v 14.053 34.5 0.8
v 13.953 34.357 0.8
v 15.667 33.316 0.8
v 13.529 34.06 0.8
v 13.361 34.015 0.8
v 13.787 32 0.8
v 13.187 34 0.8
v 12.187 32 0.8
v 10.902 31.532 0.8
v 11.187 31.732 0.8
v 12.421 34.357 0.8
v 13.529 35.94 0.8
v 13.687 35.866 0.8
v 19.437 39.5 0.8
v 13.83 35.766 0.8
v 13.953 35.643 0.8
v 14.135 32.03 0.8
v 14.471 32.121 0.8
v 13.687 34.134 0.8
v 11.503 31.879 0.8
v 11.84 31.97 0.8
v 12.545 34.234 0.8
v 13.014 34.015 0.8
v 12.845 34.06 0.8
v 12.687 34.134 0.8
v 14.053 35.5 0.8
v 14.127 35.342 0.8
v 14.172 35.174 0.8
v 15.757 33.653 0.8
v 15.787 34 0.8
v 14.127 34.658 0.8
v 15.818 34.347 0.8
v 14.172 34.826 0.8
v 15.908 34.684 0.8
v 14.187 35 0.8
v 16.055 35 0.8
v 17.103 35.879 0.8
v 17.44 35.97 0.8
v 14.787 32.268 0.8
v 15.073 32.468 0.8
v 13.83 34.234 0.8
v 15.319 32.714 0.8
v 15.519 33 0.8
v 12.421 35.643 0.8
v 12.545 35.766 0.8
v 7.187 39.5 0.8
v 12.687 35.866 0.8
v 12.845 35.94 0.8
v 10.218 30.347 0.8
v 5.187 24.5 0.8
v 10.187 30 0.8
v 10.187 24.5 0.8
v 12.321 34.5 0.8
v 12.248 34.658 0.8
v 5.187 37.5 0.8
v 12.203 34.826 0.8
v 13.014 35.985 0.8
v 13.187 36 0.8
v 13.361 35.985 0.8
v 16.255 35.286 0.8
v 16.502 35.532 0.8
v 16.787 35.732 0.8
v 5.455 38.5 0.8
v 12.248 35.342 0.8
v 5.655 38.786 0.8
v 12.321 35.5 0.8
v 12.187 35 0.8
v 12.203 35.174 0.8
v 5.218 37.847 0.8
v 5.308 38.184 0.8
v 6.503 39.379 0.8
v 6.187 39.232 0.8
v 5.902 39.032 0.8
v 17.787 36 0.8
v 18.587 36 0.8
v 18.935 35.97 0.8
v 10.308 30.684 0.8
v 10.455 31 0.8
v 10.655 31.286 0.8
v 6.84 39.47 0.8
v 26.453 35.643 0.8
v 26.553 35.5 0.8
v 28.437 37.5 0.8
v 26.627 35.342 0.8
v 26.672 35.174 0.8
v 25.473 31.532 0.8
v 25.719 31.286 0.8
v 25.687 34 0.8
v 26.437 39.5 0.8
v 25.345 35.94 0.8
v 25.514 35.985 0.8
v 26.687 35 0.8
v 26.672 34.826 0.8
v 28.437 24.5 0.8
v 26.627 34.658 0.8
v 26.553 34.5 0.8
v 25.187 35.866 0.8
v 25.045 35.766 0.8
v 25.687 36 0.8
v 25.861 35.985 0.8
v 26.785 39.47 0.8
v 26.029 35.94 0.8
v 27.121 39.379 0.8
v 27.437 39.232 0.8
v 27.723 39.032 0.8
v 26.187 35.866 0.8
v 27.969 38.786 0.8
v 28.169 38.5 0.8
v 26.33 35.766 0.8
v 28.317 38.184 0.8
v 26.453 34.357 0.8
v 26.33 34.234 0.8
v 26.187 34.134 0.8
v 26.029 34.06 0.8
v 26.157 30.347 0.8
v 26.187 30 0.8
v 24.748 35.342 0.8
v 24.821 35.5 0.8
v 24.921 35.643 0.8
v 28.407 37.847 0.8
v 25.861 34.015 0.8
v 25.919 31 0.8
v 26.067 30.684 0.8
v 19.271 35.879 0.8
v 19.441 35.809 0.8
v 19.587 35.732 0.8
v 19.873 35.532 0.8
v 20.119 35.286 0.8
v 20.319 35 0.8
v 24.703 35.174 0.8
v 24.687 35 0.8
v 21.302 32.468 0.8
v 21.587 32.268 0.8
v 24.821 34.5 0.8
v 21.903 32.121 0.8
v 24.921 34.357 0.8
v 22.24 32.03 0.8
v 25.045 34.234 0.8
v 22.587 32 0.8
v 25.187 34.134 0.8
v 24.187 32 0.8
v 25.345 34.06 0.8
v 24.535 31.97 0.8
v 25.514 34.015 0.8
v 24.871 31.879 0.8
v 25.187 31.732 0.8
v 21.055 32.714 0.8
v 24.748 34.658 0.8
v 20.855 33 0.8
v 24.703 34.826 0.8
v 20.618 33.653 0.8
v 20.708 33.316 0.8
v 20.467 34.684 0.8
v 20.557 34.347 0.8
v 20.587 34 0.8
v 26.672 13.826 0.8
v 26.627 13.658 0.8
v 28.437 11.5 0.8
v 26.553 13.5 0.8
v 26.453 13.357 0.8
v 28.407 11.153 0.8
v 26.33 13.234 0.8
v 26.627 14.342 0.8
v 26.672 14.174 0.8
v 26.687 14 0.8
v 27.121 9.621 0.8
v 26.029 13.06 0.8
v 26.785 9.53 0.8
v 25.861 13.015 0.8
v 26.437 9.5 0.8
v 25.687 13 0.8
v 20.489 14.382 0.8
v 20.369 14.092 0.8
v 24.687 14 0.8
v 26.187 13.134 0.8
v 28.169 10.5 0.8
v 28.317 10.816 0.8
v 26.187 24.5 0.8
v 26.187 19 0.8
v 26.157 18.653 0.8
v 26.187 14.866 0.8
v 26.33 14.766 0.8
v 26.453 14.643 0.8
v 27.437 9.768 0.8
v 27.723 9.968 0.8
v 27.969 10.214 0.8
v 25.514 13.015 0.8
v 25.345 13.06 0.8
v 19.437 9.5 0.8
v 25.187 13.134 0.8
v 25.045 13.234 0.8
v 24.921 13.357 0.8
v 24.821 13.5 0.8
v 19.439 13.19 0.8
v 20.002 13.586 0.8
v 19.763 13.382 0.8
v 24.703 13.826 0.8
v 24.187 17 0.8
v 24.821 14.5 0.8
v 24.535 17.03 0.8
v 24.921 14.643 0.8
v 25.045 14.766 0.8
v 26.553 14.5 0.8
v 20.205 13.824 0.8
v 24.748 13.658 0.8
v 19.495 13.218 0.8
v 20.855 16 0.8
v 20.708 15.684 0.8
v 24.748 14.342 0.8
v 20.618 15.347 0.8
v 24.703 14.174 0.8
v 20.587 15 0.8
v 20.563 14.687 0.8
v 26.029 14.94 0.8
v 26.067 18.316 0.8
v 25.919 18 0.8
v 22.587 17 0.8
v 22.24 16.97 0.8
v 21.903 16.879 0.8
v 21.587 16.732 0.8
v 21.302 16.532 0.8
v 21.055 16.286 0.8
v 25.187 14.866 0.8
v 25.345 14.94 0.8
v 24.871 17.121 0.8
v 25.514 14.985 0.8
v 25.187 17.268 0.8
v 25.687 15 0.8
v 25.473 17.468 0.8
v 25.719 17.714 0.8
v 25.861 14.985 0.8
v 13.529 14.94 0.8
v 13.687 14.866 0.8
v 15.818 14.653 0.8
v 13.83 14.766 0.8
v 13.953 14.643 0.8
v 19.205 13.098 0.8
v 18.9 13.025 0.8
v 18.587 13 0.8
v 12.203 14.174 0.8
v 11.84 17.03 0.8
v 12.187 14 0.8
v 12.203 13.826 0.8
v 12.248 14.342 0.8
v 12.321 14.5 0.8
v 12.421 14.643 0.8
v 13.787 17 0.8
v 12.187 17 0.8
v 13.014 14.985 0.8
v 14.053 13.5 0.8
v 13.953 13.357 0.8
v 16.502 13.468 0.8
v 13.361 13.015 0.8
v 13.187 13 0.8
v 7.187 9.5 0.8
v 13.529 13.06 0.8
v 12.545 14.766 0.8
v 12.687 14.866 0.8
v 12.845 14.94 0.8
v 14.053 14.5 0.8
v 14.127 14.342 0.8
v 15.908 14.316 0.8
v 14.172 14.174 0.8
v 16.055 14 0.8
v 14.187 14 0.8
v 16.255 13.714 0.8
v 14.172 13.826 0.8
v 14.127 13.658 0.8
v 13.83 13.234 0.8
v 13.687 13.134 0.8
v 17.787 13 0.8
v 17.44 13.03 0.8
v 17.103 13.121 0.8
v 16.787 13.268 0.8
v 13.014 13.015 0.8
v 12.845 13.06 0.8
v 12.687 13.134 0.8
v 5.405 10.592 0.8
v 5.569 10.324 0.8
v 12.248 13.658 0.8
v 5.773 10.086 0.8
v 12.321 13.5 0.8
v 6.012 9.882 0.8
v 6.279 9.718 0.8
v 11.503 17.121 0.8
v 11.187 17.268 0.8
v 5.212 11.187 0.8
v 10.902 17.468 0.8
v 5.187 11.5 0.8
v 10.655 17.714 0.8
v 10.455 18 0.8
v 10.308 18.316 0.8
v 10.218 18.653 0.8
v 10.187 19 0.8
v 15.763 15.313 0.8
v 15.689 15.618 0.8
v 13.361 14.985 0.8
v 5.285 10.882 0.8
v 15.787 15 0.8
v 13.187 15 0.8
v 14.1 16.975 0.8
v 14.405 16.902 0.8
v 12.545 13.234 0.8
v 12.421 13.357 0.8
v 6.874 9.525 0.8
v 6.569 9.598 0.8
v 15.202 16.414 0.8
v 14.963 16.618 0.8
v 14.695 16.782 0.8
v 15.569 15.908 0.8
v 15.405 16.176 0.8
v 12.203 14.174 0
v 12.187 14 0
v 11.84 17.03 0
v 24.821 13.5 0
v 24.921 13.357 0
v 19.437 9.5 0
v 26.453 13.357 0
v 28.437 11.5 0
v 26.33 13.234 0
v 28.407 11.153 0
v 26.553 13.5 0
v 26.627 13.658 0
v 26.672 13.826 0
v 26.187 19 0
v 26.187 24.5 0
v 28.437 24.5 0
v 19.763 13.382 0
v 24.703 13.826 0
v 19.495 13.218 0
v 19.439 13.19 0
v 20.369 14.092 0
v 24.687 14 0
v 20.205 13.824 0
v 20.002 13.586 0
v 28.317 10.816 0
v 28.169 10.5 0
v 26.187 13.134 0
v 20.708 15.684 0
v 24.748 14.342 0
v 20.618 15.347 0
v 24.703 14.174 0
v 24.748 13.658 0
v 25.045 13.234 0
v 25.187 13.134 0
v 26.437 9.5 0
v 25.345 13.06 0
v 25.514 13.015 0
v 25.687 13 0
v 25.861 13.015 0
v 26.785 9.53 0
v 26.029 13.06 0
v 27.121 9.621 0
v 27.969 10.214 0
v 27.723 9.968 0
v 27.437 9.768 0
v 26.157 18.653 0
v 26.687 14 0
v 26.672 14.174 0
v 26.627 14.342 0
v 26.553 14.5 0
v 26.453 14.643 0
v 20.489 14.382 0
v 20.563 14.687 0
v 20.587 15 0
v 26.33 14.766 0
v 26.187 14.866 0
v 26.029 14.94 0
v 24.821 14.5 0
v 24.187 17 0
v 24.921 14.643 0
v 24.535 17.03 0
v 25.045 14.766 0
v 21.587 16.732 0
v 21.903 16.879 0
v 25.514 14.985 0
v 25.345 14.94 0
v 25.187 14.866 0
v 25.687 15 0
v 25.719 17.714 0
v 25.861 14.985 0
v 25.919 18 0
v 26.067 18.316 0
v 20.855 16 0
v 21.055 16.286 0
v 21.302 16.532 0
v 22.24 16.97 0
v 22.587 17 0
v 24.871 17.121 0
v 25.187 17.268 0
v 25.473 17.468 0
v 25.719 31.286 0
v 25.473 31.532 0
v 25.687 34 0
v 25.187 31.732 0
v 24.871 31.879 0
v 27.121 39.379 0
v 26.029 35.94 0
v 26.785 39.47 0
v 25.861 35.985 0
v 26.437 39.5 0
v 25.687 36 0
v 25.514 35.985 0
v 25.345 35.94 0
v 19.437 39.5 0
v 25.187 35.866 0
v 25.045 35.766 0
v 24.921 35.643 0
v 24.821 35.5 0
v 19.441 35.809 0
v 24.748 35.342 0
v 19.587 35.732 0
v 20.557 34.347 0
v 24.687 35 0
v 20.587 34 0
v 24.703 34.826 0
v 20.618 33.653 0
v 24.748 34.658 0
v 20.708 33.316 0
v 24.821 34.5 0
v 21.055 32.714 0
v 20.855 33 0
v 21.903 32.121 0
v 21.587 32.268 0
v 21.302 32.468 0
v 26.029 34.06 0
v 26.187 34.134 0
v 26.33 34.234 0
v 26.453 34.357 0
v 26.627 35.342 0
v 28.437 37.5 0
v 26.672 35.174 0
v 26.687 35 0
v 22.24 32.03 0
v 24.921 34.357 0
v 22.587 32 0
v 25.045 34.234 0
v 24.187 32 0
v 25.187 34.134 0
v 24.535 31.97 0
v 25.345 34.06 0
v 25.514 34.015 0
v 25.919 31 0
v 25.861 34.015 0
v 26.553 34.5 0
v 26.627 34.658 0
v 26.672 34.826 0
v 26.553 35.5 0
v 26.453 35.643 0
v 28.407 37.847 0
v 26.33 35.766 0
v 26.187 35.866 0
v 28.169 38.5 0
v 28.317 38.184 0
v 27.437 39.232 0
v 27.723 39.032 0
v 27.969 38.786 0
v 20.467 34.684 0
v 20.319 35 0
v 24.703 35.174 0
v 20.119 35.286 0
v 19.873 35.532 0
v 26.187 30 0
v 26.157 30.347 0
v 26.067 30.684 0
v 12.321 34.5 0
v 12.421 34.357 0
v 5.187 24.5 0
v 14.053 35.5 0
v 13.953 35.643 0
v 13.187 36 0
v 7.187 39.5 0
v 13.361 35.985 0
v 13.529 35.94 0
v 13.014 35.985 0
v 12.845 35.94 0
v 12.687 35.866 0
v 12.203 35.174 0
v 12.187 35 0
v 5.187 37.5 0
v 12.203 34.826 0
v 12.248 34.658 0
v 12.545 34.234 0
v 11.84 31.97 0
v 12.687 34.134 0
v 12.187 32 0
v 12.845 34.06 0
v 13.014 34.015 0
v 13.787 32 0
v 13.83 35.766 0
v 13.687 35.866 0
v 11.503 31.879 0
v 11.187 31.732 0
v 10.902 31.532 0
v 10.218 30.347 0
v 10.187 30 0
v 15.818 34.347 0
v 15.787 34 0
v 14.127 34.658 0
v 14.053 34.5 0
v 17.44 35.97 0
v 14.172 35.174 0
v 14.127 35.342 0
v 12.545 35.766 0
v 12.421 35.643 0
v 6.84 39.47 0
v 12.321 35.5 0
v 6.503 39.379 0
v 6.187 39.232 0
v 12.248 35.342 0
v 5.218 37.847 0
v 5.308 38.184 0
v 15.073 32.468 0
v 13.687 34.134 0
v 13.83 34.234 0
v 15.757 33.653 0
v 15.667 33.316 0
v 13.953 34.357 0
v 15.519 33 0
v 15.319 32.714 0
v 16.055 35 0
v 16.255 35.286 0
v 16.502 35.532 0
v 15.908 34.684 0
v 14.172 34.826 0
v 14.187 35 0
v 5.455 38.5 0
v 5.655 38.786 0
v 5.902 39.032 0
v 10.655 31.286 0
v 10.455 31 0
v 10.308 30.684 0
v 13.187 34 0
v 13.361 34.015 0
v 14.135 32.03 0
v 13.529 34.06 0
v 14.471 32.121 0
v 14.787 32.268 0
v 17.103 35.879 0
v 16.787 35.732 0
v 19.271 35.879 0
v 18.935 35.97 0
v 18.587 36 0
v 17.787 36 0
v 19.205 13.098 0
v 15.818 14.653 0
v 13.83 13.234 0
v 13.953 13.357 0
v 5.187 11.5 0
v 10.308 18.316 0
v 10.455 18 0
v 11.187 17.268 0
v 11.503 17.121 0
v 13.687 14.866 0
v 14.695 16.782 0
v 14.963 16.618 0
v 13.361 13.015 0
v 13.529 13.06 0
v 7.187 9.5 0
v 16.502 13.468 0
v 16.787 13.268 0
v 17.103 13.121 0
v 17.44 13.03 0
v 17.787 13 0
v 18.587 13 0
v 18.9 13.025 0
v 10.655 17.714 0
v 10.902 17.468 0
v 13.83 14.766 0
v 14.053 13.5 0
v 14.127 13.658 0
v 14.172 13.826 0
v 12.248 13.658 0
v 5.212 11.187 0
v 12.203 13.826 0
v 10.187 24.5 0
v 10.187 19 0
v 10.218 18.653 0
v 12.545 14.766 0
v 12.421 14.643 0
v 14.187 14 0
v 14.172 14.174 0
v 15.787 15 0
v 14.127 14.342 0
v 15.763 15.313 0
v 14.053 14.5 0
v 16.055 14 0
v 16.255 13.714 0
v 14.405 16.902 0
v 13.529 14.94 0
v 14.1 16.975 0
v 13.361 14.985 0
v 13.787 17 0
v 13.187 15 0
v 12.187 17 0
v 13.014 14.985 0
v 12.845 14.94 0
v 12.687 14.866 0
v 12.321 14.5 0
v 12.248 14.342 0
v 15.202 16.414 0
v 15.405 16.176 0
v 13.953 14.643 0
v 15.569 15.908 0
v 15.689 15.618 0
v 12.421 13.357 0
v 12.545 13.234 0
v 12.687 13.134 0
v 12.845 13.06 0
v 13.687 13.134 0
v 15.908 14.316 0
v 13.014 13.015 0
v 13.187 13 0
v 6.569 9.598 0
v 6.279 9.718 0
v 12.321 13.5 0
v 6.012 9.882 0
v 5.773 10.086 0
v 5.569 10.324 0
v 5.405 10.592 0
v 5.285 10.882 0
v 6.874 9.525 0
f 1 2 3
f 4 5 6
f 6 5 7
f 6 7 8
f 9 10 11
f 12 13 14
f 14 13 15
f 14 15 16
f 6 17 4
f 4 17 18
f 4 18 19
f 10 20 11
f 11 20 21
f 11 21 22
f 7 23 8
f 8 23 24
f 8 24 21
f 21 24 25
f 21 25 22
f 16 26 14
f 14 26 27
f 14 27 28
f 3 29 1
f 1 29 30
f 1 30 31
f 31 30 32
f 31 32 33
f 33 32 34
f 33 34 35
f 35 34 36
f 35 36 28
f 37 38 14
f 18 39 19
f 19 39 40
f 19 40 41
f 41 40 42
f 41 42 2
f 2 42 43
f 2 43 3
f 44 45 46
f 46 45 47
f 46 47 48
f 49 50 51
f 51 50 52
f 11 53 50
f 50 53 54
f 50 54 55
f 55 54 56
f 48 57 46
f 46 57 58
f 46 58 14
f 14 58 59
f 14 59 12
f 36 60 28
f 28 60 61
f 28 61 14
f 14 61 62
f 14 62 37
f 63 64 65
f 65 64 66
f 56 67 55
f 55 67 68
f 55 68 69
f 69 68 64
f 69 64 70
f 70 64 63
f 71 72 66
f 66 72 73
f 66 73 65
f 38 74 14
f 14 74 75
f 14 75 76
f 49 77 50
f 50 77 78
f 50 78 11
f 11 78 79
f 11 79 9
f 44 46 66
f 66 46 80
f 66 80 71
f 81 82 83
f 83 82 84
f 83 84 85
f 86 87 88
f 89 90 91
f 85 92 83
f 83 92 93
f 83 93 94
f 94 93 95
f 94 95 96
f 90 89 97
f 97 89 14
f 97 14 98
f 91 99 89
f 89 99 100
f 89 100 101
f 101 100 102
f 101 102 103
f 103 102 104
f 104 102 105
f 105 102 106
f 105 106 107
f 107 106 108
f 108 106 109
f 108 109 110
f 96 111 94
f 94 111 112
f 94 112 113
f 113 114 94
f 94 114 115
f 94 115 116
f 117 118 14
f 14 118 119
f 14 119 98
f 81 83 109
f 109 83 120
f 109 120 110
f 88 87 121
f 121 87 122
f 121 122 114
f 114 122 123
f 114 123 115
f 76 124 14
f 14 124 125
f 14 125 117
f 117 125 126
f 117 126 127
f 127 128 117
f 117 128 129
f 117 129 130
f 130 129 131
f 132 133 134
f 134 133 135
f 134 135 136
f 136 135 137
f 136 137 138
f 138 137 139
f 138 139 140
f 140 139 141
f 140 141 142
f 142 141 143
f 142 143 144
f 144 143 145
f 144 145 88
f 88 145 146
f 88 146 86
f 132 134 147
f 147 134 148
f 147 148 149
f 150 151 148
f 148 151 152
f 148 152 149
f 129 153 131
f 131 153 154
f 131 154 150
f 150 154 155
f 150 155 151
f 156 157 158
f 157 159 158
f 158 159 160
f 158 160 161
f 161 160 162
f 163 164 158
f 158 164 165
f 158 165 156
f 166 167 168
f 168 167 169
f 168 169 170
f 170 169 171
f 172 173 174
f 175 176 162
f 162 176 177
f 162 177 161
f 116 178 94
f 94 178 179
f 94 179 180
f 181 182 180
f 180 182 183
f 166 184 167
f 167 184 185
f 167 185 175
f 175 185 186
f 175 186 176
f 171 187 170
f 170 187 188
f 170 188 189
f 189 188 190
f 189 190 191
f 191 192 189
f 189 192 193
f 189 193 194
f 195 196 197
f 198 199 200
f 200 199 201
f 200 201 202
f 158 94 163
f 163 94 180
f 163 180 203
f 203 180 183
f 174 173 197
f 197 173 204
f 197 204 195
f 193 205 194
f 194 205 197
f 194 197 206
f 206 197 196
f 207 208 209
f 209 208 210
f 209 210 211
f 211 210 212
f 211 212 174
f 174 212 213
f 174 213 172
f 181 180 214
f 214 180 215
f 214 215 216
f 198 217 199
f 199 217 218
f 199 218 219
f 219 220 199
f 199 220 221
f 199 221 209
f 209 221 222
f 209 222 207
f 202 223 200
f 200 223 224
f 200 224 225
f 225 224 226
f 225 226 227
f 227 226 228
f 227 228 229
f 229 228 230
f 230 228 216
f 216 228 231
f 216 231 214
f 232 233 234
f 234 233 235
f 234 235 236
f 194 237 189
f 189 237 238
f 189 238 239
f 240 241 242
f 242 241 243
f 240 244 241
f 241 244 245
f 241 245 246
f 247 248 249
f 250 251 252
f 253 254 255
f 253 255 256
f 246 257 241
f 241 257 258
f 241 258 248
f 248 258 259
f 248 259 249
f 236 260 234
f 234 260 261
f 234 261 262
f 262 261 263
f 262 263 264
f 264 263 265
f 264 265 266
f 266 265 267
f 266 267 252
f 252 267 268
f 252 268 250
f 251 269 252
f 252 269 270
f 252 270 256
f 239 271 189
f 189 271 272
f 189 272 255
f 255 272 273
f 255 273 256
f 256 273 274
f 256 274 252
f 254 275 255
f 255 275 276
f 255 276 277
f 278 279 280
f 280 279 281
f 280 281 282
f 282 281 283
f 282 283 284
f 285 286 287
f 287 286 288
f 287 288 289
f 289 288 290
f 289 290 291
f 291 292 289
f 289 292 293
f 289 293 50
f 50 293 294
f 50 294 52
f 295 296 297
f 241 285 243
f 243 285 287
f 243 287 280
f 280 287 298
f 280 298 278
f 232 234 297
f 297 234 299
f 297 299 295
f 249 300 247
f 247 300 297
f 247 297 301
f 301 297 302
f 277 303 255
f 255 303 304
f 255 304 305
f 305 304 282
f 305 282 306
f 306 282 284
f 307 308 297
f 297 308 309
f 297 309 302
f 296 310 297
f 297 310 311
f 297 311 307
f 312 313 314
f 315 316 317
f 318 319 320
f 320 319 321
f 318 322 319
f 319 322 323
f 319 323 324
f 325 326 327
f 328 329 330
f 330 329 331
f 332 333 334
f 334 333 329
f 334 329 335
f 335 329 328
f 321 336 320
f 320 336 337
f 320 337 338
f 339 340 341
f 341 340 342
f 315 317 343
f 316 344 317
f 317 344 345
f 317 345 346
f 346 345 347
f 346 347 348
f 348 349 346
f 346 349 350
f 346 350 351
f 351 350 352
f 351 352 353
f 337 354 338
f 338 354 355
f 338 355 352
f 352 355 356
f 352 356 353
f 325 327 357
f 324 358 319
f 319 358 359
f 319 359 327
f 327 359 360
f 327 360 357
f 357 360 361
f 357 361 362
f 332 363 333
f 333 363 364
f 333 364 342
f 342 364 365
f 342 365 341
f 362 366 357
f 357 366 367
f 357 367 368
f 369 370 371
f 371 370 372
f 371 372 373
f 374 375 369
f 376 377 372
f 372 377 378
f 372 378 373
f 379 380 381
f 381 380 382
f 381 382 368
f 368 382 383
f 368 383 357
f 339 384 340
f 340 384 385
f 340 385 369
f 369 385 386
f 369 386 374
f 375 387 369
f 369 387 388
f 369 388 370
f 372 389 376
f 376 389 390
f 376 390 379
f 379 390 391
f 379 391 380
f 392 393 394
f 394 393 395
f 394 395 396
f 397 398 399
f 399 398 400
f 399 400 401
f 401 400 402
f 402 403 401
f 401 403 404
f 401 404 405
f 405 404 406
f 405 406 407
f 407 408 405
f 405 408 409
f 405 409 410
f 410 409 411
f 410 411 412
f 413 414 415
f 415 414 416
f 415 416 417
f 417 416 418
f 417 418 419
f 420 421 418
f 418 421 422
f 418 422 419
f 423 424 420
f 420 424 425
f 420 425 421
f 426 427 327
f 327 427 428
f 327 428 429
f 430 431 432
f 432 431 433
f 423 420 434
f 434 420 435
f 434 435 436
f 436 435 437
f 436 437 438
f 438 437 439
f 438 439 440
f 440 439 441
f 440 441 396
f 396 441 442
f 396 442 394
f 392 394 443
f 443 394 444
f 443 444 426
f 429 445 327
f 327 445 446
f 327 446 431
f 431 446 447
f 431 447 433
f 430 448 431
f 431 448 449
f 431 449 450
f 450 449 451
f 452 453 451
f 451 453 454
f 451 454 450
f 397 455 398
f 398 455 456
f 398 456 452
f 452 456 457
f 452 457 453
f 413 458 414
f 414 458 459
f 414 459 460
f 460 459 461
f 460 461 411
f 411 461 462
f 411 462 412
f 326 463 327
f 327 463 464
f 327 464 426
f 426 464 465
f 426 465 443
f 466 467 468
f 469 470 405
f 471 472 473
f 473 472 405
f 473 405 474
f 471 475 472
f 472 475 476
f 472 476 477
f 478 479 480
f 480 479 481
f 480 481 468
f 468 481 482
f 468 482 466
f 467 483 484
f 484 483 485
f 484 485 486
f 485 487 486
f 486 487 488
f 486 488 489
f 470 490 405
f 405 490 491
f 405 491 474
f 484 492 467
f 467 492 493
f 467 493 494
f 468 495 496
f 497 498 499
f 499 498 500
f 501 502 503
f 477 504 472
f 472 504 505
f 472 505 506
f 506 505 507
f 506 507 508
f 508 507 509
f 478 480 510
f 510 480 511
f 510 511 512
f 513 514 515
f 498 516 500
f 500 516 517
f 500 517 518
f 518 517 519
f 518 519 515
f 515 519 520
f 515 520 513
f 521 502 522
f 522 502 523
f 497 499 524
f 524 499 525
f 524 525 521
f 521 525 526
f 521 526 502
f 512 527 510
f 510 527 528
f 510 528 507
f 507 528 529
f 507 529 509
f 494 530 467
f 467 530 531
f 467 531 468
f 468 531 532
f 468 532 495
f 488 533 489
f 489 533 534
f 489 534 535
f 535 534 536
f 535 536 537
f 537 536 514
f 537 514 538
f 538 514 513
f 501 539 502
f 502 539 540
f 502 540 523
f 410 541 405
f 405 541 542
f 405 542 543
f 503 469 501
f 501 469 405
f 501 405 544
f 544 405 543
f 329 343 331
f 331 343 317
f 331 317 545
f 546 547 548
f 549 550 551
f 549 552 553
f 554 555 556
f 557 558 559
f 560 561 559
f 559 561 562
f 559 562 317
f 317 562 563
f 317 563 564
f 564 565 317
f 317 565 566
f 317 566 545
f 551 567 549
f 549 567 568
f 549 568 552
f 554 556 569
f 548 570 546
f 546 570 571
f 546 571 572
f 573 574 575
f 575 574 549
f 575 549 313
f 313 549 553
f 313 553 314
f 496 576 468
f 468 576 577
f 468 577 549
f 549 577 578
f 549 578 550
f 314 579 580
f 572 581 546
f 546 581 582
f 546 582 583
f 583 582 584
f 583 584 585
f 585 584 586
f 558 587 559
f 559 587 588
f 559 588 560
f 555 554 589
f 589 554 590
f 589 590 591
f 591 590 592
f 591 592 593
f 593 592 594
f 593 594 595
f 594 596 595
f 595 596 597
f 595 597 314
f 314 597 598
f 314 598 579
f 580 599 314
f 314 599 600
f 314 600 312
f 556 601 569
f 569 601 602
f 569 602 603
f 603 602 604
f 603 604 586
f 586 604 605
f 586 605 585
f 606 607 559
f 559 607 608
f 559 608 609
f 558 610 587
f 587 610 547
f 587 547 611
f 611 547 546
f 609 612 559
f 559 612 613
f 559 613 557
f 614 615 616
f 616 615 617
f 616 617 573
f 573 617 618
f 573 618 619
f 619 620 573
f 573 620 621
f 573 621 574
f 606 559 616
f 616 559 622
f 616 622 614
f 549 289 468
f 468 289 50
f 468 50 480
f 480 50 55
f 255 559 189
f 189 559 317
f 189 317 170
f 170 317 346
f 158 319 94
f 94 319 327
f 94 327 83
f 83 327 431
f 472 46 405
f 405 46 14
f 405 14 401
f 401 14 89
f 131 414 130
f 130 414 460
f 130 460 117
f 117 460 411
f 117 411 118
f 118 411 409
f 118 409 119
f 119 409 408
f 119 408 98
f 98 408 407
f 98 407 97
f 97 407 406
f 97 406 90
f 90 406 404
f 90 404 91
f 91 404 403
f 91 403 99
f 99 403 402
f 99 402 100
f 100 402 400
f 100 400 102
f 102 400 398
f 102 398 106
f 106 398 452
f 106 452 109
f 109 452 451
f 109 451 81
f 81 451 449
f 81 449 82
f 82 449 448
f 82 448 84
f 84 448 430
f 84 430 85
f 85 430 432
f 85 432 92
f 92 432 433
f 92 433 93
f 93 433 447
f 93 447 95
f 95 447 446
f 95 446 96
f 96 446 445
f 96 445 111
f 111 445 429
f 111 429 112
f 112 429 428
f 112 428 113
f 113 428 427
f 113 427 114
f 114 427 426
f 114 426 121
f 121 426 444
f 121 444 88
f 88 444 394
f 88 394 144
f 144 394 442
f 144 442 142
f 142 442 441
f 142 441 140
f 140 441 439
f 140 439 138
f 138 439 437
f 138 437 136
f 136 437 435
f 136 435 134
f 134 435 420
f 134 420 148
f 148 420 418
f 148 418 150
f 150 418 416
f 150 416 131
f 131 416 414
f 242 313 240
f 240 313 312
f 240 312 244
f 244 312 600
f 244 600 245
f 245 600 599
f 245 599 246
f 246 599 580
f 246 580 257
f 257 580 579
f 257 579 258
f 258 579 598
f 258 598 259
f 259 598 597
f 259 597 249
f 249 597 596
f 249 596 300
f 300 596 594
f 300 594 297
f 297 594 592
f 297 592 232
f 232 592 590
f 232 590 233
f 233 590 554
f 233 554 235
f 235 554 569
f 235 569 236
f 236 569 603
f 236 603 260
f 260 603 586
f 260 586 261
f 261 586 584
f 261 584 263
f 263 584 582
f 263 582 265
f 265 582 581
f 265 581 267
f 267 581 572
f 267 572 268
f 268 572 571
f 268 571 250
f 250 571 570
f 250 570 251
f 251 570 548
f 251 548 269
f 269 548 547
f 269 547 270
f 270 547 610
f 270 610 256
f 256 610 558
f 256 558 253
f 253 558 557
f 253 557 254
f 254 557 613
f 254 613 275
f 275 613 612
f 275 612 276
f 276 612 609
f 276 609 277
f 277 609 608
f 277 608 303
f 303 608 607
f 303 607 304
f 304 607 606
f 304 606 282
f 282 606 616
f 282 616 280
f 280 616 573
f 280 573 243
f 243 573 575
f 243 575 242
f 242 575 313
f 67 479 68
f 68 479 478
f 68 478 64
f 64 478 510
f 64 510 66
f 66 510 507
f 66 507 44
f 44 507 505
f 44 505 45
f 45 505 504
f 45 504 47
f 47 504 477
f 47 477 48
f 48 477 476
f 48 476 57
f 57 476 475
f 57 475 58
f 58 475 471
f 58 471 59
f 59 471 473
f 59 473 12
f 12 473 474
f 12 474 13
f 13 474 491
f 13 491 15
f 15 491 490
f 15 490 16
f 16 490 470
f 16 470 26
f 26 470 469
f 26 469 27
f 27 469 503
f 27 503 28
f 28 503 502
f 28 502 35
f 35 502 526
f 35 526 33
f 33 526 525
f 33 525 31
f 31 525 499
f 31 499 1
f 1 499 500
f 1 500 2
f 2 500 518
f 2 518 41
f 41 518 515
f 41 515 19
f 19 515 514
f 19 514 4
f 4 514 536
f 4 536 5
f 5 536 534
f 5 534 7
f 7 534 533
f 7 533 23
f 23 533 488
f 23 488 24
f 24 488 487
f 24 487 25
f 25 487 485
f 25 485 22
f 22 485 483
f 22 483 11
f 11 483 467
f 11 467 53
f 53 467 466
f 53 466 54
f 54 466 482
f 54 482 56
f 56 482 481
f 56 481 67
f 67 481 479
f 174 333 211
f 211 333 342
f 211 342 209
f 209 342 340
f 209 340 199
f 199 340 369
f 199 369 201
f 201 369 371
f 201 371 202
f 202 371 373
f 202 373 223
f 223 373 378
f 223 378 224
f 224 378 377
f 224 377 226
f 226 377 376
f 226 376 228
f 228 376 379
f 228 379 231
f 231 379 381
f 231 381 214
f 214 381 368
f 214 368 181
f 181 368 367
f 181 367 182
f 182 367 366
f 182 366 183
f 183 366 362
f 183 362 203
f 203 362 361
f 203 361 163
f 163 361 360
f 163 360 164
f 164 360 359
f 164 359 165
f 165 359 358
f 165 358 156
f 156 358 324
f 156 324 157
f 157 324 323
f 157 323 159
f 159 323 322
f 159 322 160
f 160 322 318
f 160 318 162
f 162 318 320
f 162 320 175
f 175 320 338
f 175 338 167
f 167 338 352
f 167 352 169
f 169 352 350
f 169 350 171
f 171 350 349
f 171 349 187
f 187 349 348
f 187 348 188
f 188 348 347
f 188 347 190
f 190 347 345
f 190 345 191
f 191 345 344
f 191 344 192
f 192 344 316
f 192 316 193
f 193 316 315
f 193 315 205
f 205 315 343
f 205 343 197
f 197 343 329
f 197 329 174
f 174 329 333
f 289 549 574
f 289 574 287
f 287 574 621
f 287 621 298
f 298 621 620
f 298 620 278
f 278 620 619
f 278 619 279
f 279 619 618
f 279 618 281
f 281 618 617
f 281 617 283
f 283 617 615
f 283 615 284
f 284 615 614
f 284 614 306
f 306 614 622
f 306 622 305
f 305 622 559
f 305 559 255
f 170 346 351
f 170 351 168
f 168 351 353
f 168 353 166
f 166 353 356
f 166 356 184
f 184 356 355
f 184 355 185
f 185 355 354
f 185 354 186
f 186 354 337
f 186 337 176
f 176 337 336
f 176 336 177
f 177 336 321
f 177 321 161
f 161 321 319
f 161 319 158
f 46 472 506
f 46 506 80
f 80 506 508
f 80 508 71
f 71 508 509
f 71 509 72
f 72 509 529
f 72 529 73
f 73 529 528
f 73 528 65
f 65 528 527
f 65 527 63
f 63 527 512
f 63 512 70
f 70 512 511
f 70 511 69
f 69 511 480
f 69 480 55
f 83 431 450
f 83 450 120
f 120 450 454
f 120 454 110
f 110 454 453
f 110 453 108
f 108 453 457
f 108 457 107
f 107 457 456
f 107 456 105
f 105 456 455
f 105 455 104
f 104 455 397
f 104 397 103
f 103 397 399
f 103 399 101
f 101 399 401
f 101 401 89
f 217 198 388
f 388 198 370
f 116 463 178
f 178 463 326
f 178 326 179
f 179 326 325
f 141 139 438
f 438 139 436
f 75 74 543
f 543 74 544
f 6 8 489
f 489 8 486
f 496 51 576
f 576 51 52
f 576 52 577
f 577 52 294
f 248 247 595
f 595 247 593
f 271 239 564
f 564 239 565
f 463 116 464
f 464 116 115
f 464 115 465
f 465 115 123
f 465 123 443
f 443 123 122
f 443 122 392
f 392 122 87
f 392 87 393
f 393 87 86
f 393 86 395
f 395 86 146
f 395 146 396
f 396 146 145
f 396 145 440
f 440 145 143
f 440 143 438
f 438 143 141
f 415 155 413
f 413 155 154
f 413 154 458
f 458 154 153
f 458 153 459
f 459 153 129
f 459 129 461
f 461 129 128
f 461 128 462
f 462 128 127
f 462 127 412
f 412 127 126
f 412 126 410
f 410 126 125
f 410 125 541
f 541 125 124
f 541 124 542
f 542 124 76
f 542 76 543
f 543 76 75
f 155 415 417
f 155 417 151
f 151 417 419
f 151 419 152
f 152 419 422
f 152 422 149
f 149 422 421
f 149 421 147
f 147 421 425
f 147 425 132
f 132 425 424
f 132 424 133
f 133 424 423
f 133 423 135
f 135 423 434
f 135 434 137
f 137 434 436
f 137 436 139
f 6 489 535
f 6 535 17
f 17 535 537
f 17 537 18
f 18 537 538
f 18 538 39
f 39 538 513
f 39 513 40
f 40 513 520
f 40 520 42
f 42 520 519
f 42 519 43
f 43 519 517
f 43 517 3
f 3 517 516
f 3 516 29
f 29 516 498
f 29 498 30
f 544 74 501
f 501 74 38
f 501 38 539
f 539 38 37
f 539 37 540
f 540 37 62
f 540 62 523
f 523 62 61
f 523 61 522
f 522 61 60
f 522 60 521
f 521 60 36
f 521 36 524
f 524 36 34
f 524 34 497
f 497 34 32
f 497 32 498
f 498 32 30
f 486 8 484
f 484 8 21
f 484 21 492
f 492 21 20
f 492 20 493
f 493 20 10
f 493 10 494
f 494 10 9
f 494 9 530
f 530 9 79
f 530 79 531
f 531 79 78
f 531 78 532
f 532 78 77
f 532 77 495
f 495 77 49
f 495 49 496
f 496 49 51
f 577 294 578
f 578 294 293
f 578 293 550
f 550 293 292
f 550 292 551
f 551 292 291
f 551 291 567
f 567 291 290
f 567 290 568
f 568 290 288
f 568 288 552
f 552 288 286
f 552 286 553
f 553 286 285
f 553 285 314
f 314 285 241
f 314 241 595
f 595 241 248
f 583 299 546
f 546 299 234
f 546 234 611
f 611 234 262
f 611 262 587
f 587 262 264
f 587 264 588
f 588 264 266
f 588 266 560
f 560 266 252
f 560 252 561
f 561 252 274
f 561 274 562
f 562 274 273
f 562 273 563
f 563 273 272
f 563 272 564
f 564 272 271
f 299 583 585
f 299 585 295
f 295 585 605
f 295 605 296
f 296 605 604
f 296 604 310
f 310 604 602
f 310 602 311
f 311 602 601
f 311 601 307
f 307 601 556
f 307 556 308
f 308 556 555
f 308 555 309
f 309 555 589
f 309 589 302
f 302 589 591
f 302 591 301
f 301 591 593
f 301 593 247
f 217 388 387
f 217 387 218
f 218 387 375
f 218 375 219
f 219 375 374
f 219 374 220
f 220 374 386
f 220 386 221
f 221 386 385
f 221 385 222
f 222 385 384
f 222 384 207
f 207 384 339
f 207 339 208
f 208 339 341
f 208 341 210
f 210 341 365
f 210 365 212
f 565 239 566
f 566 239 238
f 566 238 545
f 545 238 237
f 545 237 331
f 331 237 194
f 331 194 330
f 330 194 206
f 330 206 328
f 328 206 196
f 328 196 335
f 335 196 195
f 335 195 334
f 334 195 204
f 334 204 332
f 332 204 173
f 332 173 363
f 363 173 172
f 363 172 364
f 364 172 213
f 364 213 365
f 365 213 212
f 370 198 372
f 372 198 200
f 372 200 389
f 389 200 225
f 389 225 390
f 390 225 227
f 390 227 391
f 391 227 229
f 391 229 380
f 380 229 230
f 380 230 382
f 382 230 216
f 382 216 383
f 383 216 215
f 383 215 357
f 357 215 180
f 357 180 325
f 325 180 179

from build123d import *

# Parameters (mm, degrees)
SKETCH1_W       = 23.25
SKETCH1_H       = 30
SKETCH1_R       = 1
BODY_DEPTH      = 0.8
CORNER_FILLET_R = 2
CUTOUT_DEPTH    = 49.678263528
CUTOUT_FILLET_R = 2


with BuildPart() as part:
    # Sketch1 → body (new body)
    with BuildSketch(Plane.XY):
        with Locations((16.812358178, 24.5)):
            Rectangle(SKETCH1_W, SKETCH1_H)
        with Locations((25.687358178, 14)):
            Circle(SKETCH1_R, mode=Mode.SUBTRACT)
        with Locations(Location((25.687358178, 35, 0), (0, 0, 180))):
            Circle(SKETCH1_R, mode=Mode.SUBTRACT)
        with Locations(Location((13.187358178, 14, 0), (0, 0, 180))):
            Circle(SKETCH1_R, mode=Mode.SUBTRACT)
        with Locations((13.187358178, 35)):
            Circle(SKETCH1_R, mode=Mode.SUBTRACT)
    extrude(amount=BODY_DEPTH)

    # corner fillet
    corner_fillet_edges = [part.edges().sort_by_distance(p)[0] for p in [
        (5.187358178, 39.5, 0.4),
        (28.437358178, 39.5, 0.4),
        (28.437358178, 9.5, 0.4),
        (5.187358178, 9.5, 0.4),
    ]]
    fillet(corner_fillet_edges, radius=CORNER_FILLET_R)

    # Sketch2 → cutout (cut, through all)
    with BuildSketch(Plane(origin=(0, 0, 0), x_dir=(-1, 0, 0), z_dir=(0, 0, -1))):
        Polygon((-26.187358178, 17), (-26.187358178, 32), (-20.587358178, 32), (-20.587358178, 36), (-15.787358178, 36), (-15.787358178, 32), (-10.187358178, 32), (-10.187358178, 17), (-15.787358178, 17), (-15.787358178, 13), (-20.587358178, 13), (-20.587358178, 17), align=None)
    extrude(amount=-CUTOUT_DEPTH, mode=Mode.SUBTRACT)

    # cutout fillet
    cutout_fillet_edges = [part.edges().sort_by_distance(p)[0] for p in [
        (26.187358178, 32, 0.4),
        (20.587358178, 32, 0.4),
        (20.587358178, 36, 0.4),
        (15.787358178, 36, 0.4),
        (15.787358178, 32, 0.4),
        (10.187358178, 32, 0.4),
        (10.187358178, 17, 0.4),
        (15.787358178, 17, 0.4),
        (15.787358178, 13, 0.4),
        (20.587358178, 13, 0.4),
        (20.587358178, 17, 0.4),
        (26.187358178, 17, 0.4),
    ]]
    fillet(cutout_fillet_edges, radius=CUTOUT_FILLET_R - 0.0001)  # a hair under: the kernel refuses the full size


solid = part.part
